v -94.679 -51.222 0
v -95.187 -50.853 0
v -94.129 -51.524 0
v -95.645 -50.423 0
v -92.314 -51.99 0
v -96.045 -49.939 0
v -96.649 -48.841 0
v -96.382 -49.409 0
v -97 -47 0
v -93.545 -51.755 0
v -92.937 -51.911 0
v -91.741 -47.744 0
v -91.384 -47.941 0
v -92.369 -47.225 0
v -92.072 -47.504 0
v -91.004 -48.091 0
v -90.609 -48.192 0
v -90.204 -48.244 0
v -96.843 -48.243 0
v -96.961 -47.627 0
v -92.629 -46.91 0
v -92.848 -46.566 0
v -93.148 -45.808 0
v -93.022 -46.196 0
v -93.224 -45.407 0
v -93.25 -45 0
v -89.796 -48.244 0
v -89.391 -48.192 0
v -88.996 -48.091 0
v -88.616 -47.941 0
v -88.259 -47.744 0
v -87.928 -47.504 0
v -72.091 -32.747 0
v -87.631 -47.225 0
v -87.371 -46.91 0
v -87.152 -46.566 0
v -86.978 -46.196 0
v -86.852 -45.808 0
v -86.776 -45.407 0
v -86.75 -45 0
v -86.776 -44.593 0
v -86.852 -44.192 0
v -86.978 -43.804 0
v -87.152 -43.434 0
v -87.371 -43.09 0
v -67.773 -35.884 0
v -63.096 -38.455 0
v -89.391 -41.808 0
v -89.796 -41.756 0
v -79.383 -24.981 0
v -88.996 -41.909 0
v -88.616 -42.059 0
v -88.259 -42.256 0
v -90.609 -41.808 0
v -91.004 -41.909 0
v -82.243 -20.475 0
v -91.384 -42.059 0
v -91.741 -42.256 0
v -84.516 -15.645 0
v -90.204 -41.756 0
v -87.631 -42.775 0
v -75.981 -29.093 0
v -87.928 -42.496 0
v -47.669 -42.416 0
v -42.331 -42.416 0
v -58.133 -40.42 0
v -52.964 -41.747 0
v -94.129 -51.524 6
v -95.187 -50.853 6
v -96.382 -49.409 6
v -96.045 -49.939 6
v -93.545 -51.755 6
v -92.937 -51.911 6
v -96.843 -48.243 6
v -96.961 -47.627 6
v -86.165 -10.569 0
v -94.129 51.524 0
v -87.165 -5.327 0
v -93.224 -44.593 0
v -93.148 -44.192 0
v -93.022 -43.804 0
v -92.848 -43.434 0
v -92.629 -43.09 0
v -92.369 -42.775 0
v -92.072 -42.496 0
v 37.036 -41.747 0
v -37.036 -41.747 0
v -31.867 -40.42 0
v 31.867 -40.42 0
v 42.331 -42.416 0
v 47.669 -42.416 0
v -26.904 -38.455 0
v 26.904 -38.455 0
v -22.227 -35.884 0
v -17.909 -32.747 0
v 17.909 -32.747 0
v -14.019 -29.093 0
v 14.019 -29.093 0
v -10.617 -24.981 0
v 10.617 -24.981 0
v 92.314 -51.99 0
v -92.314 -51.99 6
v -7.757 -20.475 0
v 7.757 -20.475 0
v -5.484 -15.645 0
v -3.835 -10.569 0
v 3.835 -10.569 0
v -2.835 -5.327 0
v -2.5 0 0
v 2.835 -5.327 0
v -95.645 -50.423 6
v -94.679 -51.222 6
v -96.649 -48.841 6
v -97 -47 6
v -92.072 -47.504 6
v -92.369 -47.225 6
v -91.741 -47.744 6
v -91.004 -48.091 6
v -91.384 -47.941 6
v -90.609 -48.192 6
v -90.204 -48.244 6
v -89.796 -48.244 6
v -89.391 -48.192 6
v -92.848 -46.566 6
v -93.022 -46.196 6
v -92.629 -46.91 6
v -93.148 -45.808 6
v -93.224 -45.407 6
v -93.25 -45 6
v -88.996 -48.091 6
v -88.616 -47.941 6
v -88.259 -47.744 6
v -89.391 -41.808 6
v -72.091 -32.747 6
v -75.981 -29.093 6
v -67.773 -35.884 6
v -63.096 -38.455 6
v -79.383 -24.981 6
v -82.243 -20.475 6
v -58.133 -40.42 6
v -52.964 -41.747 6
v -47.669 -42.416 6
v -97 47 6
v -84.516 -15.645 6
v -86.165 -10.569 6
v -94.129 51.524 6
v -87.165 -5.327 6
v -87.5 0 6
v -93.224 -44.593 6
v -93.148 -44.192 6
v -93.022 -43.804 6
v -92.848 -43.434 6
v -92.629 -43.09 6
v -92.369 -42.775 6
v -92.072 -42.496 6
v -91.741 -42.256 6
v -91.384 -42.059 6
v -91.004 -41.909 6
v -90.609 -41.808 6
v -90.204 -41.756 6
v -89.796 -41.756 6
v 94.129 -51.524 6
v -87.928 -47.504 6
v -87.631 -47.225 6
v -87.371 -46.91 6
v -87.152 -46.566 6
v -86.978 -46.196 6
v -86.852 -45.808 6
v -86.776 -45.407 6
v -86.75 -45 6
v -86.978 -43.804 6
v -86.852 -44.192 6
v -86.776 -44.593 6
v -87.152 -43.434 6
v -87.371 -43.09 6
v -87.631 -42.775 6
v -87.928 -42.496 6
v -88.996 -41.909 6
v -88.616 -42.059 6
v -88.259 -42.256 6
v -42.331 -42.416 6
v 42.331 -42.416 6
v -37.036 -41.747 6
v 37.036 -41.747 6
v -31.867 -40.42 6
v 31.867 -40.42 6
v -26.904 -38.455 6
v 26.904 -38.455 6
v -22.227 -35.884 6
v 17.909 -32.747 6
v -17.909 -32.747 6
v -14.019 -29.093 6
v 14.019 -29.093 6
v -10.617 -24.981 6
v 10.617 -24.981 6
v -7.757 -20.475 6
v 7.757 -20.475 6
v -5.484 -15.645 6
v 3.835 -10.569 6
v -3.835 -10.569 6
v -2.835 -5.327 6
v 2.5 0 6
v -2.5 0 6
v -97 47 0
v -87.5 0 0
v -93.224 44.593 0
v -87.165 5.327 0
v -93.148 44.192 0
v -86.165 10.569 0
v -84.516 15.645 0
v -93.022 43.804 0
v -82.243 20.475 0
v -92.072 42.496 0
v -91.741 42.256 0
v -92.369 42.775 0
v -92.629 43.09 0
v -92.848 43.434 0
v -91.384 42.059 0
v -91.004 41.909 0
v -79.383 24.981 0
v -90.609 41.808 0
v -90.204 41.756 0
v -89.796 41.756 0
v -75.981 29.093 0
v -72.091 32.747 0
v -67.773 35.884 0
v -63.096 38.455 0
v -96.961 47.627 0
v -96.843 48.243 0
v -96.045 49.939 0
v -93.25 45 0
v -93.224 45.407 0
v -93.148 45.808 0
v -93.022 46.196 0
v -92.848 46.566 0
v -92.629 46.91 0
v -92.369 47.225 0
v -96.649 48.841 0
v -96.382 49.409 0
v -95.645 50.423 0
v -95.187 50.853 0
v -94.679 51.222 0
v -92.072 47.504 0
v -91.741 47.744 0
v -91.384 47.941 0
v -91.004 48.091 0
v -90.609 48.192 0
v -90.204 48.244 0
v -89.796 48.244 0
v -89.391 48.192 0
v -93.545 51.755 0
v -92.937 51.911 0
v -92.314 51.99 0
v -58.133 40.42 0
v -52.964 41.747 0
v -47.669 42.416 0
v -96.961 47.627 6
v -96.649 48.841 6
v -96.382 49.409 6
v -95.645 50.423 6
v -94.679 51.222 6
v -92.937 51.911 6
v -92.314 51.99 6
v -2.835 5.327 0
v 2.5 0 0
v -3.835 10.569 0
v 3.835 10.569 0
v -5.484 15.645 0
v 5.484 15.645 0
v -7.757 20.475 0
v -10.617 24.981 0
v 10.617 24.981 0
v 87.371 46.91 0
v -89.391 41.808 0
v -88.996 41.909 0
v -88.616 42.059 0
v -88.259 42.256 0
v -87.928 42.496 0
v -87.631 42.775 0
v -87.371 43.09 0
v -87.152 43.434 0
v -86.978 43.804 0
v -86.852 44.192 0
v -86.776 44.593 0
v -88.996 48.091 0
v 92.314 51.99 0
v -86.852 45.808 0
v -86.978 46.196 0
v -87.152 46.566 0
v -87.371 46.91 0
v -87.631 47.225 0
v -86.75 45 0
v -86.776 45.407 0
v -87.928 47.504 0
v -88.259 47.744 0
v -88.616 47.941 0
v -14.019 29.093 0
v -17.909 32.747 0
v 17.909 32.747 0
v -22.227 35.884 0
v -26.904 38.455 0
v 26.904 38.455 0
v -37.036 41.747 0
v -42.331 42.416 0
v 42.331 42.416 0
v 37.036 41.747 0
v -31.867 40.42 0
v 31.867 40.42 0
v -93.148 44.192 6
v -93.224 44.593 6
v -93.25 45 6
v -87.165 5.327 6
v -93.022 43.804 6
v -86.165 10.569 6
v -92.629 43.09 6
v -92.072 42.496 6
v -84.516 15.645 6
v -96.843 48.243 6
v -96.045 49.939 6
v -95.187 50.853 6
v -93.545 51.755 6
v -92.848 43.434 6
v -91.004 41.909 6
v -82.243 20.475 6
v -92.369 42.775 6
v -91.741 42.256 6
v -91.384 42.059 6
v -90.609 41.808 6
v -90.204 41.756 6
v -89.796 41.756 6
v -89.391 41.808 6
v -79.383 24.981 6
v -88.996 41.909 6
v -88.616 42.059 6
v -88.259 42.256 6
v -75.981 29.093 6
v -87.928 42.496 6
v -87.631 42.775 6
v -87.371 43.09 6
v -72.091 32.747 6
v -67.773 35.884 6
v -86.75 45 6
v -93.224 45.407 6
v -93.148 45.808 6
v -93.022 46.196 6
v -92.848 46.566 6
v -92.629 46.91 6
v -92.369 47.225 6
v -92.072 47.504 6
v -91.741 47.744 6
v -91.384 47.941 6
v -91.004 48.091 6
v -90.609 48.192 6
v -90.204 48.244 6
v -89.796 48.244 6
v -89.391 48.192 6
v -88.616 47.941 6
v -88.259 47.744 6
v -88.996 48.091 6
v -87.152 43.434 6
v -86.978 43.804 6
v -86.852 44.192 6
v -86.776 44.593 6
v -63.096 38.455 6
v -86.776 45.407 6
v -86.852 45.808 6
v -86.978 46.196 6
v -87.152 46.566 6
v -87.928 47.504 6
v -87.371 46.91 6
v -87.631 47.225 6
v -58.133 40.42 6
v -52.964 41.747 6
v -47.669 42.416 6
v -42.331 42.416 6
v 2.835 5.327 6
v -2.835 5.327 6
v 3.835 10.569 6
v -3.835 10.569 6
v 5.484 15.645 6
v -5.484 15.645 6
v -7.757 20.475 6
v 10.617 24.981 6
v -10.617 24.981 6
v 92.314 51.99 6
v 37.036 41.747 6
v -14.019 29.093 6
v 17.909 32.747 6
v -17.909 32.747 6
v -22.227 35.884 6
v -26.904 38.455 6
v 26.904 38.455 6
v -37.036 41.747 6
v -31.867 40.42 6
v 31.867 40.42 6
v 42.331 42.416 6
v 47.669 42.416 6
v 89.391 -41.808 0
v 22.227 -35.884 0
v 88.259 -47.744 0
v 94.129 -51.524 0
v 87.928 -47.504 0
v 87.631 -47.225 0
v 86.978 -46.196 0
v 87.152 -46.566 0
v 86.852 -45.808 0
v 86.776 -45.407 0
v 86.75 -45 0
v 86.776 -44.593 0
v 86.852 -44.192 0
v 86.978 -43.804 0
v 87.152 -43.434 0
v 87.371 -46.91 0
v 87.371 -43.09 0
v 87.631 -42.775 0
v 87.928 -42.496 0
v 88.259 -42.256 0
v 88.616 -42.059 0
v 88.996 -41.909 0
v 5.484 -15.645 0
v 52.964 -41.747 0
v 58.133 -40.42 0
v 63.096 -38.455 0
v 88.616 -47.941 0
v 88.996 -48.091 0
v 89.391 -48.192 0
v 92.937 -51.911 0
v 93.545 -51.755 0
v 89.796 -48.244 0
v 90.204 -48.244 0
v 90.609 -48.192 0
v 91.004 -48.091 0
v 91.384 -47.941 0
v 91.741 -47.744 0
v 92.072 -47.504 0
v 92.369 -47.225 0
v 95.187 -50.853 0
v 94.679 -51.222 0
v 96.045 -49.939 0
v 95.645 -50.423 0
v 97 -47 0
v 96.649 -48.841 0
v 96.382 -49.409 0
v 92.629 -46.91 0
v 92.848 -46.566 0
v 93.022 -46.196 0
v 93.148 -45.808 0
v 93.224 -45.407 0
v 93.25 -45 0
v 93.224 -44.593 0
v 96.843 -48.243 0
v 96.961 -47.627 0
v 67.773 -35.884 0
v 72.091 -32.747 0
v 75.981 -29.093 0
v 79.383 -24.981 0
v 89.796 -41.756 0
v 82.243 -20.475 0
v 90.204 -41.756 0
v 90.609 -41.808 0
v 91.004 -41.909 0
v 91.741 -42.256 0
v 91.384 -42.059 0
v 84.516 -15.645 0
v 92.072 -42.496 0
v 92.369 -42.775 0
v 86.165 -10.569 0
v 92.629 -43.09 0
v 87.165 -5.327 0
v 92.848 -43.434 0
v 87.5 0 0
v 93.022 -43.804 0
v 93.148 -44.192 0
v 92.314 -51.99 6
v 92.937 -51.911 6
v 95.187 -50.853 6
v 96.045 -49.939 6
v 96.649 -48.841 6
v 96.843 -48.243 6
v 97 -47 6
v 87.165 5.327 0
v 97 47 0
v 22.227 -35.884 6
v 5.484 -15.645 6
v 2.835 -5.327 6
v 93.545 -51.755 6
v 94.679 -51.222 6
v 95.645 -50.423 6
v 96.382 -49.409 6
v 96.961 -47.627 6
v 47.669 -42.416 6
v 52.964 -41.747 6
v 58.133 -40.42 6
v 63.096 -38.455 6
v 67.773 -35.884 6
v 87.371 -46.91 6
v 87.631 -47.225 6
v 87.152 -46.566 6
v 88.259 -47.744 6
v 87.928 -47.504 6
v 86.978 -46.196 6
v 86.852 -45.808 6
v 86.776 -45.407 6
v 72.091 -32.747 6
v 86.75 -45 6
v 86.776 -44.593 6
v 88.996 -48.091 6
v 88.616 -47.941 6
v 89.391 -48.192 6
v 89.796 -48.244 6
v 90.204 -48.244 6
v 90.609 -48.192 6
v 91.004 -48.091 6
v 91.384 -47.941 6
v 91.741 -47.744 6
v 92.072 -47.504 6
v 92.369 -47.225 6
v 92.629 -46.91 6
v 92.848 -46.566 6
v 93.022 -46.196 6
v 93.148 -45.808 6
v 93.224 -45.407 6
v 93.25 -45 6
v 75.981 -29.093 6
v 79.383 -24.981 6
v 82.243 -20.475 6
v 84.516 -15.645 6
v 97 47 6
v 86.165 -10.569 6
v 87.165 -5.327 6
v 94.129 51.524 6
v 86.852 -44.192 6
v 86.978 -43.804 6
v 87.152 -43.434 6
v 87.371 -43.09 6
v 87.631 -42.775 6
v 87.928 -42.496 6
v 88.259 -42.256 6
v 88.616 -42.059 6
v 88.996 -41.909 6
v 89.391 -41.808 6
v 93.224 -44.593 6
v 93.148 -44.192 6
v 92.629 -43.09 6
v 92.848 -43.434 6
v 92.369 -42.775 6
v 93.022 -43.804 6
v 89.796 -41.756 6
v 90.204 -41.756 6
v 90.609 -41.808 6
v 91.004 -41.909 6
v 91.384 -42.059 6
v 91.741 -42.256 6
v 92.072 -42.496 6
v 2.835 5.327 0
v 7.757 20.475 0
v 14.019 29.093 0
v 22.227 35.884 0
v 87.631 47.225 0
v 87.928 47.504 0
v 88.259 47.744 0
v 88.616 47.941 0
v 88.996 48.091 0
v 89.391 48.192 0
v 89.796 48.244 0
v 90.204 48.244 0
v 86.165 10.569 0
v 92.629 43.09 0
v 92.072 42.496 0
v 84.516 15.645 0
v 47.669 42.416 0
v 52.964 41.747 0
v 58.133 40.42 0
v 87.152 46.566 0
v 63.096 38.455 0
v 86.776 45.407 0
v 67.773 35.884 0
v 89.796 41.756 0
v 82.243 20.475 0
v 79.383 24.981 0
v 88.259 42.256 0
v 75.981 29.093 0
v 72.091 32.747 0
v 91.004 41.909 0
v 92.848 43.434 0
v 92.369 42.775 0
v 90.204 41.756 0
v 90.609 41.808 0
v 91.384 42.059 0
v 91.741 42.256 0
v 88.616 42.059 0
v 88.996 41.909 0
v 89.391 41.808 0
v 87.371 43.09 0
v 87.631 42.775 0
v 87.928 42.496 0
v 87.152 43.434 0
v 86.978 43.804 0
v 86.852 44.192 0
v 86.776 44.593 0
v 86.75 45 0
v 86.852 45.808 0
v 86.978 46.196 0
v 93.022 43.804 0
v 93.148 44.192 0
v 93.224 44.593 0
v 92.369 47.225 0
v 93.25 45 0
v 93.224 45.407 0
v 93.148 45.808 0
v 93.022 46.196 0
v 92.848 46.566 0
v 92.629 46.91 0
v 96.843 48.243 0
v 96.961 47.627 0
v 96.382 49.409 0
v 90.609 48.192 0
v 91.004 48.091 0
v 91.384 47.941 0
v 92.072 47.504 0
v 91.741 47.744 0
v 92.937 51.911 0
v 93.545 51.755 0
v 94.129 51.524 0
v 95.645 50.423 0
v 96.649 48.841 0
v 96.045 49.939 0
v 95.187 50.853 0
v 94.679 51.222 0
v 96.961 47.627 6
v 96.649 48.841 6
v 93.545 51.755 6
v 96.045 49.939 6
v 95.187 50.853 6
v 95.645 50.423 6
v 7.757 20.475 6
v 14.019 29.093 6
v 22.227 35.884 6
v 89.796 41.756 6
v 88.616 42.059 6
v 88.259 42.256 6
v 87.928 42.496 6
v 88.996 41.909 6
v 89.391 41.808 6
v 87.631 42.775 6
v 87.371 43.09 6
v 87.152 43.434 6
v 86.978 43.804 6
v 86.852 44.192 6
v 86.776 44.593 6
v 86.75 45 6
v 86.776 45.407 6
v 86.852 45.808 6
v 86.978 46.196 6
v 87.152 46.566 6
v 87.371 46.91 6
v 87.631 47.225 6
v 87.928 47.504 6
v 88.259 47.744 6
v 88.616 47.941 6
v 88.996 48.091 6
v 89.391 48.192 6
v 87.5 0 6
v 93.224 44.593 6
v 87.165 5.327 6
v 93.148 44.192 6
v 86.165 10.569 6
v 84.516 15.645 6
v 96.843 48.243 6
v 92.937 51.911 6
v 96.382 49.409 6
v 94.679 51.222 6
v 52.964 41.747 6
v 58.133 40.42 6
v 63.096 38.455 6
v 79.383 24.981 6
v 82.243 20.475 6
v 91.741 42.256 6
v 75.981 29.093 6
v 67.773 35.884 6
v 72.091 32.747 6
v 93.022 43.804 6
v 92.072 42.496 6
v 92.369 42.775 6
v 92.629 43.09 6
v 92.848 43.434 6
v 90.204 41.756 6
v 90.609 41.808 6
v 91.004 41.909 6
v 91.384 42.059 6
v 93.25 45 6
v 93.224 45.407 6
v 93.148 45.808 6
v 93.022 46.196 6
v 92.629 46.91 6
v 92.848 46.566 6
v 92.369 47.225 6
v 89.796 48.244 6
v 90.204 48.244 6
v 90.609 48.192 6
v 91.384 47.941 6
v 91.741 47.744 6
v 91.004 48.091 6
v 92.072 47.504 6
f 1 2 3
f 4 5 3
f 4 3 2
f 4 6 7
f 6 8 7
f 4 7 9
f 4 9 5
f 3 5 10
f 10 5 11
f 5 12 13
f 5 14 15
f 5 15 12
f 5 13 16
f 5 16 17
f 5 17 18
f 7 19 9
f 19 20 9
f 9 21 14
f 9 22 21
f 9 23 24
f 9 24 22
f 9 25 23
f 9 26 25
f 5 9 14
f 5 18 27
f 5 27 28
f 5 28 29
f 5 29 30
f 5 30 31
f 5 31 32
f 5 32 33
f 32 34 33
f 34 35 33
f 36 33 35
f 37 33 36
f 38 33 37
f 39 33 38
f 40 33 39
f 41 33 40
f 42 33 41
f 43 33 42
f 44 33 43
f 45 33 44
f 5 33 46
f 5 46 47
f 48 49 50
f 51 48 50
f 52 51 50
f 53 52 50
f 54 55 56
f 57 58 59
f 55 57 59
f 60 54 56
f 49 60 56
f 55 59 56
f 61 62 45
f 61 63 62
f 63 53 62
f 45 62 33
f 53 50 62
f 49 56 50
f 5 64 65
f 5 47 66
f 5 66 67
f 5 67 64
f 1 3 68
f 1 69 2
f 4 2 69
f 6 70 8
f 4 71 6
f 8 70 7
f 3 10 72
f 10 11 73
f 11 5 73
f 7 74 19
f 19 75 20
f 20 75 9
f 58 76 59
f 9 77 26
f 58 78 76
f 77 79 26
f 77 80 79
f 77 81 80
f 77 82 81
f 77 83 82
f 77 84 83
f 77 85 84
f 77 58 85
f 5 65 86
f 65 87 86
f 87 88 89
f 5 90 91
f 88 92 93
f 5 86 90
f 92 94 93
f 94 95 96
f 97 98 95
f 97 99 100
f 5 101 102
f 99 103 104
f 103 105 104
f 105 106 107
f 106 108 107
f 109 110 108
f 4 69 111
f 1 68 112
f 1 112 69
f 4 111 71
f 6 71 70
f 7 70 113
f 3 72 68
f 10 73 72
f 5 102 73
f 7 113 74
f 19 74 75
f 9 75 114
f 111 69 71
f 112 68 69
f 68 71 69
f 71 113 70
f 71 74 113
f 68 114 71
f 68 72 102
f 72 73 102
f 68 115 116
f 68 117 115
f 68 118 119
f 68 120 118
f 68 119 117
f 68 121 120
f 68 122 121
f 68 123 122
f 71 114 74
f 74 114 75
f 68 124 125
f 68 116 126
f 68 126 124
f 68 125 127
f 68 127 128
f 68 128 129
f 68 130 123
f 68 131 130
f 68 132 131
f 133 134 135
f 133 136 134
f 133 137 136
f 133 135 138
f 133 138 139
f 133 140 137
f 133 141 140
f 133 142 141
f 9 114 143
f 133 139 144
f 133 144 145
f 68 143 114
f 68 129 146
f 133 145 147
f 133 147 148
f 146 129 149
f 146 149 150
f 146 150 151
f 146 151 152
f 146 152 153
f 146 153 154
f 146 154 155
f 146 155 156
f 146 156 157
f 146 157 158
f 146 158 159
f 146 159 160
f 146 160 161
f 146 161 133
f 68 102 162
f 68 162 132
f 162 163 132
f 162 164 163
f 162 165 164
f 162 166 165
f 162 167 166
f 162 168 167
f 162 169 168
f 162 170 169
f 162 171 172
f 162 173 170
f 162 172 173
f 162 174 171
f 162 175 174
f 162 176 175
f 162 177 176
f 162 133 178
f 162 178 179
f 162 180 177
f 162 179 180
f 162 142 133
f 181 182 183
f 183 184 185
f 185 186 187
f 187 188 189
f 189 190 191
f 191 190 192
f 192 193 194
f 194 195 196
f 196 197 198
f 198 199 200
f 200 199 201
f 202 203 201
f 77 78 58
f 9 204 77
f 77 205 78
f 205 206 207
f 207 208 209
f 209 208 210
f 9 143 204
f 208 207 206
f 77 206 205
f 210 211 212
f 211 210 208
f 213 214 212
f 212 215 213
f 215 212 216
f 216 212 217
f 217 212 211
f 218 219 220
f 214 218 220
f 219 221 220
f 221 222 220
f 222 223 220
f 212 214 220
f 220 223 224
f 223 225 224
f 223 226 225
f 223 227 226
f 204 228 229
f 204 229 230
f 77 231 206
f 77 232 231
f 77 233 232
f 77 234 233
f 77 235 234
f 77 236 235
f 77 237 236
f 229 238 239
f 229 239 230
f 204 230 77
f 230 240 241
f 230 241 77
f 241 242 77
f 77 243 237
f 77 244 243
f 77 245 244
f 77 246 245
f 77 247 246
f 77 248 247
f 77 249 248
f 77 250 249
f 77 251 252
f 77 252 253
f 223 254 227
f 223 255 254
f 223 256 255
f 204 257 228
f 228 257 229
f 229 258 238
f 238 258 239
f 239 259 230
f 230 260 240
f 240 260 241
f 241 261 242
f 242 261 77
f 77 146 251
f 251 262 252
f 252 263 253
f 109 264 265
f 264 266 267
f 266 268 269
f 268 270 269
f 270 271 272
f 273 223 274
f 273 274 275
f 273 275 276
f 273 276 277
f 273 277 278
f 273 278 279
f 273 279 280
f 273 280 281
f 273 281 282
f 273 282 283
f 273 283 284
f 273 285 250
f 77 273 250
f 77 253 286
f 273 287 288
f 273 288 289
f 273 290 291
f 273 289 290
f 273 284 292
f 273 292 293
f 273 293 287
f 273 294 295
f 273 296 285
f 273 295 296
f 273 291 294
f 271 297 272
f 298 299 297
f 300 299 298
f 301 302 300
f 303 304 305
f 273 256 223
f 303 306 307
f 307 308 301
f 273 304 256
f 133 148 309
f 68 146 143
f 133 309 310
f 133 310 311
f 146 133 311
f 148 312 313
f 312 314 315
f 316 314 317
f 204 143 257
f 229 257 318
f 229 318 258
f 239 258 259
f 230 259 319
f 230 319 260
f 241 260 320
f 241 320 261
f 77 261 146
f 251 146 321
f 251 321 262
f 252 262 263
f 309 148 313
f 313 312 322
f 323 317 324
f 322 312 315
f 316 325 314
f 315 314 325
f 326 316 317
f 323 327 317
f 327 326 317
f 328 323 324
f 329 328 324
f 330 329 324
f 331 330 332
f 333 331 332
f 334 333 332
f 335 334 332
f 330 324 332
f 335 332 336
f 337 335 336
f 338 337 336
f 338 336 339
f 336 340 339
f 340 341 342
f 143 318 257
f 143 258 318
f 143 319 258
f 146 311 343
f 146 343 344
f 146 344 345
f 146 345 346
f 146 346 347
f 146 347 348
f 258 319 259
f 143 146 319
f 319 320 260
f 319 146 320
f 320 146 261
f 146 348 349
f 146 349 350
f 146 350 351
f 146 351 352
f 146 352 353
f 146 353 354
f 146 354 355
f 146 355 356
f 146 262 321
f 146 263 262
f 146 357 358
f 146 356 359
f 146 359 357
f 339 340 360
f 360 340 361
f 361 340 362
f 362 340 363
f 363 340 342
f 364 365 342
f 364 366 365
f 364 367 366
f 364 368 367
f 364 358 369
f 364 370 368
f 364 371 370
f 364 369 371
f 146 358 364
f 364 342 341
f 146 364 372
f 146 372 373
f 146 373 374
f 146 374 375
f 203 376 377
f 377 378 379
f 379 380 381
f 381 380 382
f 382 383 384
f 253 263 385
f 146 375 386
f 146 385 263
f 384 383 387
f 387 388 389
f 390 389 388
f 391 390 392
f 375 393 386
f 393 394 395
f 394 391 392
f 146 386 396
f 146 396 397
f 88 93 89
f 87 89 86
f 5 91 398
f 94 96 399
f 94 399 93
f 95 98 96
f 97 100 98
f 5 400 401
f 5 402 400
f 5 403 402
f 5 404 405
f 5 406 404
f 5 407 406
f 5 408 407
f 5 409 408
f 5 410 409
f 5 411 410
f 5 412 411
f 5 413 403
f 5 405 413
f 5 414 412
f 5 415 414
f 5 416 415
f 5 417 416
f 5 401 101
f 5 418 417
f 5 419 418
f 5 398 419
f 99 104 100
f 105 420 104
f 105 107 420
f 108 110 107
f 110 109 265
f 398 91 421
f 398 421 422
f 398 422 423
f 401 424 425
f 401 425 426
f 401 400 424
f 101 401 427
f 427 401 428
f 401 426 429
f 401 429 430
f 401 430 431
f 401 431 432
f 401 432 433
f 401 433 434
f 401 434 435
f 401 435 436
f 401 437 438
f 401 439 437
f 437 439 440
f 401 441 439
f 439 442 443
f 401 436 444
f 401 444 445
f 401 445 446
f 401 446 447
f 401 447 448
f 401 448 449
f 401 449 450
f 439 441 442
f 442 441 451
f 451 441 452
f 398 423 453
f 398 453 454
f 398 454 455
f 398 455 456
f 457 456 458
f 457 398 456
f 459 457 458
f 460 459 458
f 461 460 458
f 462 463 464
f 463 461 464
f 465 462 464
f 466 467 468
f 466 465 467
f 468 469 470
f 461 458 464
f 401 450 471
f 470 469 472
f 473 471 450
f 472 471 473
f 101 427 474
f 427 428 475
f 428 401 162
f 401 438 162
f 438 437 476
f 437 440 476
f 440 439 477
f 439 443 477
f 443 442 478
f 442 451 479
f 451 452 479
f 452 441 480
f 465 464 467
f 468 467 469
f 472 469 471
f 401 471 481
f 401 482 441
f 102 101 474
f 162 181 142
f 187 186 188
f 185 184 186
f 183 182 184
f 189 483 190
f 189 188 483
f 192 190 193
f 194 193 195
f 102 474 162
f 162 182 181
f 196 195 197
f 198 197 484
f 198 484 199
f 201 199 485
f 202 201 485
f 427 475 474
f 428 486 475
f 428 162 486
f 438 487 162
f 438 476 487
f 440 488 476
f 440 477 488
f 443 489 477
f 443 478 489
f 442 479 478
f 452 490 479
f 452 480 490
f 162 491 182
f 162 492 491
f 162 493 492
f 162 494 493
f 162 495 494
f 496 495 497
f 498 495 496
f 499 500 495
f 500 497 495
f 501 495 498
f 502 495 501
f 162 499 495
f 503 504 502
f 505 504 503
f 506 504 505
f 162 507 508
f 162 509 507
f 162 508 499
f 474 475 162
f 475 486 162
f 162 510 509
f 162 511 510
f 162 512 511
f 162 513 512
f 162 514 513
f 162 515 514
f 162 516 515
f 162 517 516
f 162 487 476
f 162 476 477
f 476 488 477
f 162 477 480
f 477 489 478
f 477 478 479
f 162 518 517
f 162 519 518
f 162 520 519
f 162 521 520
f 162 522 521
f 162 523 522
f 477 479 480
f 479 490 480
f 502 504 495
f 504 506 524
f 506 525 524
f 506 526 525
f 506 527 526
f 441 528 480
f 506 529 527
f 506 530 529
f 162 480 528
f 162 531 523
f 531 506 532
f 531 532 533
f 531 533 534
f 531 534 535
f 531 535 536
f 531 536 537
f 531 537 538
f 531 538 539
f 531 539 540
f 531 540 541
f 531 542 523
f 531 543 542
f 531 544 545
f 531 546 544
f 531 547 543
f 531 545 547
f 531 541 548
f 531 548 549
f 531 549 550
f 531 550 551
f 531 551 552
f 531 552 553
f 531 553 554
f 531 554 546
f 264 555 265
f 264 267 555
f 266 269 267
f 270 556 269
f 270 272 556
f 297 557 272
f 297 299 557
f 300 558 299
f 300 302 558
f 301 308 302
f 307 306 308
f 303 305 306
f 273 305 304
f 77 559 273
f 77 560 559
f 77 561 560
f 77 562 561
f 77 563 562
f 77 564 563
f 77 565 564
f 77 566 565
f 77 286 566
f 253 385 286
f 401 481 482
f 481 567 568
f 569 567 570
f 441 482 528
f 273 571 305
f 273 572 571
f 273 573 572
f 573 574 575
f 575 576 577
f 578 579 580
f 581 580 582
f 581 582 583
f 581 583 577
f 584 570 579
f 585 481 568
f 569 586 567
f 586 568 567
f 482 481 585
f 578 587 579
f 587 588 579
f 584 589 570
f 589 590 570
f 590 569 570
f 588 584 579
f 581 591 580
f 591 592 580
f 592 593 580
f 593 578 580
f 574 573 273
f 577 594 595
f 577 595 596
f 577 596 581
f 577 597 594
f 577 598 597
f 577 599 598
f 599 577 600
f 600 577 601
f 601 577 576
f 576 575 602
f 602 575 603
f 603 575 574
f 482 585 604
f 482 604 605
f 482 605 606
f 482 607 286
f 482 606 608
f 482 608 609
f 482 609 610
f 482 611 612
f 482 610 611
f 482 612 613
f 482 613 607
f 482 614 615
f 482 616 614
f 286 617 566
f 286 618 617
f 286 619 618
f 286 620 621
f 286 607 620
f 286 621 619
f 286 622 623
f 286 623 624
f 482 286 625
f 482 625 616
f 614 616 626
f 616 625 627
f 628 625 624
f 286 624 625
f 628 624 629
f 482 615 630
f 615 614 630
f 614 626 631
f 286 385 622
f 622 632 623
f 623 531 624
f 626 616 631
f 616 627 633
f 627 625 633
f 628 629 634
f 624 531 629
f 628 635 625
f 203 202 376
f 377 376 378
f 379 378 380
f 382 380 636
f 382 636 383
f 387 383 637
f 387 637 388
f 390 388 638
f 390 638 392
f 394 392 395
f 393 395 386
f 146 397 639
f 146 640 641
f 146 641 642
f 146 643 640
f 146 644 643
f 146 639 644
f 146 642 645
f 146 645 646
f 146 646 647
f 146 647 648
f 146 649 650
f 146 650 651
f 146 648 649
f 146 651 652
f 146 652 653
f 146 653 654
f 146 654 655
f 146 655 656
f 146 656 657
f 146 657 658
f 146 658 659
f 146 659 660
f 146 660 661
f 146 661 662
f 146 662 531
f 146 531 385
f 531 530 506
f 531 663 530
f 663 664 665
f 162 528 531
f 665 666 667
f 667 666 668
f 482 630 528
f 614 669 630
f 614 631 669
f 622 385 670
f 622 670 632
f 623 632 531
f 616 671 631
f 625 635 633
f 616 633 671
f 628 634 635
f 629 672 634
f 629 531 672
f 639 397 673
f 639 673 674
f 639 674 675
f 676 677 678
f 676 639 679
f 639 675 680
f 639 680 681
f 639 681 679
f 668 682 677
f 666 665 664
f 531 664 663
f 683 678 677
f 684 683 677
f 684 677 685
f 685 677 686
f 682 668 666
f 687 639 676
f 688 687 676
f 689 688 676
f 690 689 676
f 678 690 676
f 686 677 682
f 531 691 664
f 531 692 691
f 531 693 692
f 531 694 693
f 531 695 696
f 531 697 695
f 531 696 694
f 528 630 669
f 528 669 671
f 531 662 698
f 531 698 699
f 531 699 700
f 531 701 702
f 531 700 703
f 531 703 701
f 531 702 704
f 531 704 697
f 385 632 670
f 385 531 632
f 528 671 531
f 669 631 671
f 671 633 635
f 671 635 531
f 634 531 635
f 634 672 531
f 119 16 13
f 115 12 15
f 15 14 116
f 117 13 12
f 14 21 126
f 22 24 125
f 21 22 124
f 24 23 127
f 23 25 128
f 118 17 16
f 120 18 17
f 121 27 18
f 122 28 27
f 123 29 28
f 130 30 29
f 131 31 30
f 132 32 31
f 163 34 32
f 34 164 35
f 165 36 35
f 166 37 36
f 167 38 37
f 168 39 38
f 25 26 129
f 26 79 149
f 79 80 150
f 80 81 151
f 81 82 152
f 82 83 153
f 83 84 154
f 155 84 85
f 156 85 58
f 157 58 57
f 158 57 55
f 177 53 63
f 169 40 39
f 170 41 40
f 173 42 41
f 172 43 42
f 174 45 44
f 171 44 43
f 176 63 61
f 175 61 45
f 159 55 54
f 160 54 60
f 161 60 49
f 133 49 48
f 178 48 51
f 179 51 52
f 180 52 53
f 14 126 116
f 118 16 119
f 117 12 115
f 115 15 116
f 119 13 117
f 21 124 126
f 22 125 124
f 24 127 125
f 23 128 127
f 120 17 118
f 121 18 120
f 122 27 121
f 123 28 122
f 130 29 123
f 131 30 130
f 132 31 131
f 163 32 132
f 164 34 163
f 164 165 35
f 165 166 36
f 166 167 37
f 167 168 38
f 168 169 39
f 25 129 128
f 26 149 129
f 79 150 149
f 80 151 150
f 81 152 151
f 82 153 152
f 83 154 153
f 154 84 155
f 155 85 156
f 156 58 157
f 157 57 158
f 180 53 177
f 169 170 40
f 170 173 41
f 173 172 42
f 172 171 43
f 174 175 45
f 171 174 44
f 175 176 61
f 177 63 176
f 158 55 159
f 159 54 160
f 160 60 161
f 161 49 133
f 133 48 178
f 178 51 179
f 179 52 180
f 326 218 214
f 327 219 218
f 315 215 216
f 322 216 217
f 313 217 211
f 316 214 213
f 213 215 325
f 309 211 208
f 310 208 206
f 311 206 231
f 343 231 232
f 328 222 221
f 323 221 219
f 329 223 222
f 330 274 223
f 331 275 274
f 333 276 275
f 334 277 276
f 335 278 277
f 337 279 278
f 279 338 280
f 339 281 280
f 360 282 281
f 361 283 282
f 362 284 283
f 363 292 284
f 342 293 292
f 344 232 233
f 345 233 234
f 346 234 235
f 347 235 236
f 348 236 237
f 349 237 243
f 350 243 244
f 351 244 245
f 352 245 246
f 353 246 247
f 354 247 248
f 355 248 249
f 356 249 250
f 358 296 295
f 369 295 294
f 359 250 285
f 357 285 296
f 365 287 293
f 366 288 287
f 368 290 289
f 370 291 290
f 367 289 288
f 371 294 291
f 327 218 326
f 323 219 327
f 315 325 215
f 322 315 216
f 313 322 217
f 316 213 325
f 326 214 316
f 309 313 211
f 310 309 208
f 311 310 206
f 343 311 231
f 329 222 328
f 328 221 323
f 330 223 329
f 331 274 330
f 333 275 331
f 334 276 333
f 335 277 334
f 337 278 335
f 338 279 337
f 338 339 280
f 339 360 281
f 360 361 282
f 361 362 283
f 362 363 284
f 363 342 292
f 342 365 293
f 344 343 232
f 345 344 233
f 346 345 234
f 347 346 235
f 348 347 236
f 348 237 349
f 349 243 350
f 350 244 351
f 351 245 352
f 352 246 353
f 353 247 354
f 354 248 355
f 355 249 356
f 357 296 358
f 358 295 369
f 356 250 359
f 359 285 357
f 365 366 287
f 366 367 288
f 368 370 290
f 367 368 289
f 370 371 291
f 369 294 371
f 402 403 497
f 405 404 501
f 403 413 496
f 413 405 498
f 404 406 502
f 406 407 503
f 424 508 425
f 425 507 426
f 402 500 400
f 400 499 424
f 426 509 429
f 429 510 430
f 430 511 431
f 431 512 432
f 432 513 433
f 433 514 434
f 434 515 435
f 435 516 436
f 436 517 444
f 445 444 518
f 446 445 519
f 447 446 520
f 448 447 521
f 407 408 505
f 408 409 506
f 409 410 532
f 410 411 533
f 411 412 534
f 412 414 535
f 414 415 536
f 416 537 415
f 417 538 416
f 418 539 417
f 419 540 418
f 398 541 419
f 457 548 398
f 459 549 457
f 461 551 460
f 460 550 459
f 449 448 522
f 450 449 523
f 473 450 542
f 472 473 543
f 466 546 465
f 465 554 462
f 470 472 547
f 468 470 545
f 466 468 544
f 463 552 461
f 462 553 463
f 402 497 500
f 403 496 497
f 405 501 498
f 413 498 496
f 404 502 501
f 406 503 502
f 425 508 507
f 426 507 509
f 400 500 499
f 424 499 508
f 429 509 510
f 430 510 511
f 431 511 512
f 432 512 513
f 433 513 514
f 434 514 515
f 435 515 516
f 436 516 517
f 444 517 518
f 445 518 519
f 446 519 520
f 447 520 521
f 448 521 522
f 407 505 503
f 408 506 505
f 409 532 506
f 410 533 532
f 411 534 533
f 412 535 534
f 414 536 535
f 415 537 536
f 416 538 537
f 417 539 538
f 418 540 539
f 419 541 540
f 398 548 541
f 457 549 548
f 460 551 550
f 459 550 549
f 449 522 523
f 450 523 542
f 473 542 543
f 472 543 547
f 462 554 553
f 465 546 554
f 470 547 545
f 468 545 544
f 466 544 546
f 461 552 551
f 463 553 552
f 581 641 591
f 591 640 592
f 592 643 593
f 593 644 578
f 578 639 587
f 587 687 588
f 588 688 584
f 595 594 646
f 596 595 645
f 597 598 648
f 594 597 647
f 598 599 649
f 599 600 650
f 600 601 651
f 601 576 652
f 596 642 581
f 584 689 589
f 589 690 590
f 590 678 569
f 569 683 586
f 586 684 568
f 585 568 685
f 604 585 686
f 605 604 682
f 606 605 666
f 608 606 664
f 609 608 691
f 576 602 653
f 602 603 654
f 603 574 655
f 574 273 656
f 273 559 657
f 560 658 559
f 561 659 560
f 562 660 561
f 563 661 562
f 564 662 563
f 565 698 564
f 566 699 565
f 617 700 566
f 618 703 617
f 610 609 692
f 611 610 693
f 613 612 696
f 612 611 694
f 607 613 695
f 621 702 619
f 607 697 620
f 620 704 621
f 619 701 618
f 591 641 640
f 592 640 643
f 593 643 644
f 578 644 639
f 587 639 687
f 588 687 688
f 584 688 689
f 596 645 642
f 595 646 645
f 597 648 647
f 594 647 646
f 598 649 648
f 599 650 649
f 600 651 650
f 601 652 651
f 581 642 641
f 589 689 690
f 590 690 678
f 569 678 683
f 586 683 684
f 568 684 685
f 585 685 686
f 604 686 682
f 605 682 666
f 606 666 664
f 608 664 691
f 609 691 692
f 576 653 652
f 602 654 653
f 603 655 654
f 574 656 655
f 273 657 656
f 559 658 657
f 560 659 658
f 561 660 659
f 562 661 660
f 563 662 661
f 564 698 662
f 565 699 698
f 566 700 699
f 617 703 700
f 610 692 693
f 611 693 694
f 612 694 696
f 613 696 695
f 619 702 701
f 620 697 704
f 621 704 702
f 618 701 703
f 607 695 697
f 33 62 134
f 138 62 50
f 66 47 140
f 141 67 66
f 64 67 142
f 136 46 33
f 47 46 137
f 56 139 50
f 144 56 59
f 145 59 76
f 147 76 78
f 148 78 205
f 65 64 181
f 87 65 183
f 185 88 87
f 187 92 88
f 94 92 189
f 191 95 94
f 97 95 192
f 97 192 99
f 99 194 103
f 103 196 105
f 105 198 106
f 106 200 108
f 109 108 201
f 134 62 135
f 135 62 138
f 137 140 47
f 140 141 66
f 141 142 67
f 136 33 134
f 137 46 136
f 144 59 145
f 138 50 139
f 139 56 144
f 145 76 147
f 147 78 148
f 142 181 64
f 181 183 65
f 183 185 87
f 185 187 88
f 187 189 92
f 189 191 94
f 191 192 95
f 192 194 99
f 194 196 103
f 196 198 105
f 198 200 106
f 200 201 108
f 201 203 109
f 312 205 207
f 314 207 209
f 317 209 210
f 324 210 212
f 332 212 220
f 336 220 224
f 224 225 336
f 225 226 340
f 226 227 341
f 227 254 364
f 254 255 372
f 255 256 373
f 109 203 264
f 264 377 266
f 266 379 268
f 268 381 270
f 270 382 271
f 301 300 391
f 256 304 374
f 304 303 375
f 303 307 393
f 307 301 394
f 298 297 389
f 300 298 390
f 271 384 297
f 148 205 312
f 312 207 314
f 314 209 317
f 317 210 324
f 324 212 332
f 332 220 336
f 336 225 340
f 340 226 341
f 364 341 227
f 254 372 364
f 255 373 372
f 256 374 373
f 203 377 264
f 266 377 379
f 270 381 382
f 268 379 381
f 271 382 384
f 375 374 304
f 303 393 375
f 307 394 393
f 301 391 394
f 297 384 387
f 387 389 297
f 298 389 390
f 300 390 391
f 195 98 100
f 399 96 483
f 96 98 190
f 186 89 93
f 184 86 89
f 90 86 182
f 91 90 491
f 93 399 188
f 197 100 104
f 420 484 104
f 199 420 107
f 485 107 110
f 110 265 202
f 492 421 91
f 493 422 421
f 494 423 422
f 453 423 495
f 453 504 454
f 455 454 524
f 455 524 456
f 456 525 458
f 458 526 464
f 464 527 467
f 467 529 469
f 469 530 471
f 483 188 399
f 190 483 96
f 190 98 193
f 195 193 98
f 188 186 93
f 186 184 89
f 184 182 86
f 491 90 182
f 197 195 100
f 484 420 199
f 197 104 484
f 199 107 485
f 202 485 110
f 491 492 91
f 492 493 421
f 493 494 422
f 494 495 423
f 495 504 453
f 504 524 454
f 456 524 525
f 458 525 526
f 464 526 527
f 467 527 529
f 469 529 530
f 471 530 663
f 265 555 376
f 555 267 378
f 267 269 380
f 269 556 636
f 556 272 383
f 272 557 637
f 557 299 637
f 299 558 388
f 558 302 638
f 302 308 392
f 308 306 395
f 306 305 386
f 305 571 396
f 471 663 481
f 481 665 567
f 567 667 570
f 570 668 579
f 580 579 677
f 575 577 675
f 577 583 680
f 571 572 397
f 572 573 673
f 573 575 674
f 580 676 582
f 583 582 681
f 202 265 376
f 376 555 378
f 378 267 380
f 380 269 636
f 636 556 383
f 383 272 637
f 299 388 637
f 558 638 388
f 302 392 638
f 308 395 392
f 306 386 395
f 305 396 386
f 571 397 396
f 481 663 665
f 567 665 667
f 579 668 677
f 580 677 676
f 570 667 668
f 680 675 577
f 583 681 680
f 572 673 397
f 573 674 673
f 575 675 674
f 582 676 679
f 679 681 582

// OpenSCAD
$fn = 50;

difference() {
	union() {
		hull() {
			translate(v = [-92.0, 47.0, 0]) {
				cylinder(h = 6, r = 5);
			}
			translate(v = [92.0, 47.0, 0]) {
				cylinder(h = 6, r = 5);
			}
			translate(v = [-92.0, -47.0, 0]) {
				cylinder(h = 6, r = 5);
			}
			translate(v = [92.0, -47.0, 0]) {
				cylinder(h = 6, r = 5);
			}
		}
	}
	union() {
		translate(v = [-90.0, -45.0, -100.0]) {
			cylinder(h = 200, r = 3.25);
		}
		translate(v = [-90.0, 45.0, -100.0]) {
			cylinder(h = 200, r = 3.25);
		}
		translate(v = [90.0, -45.0, -100.0]) {
			cylinder(h = 200, r = 3.25);
		}
		translate(v = [90.0, 45.0, -100.0]) {
			cylinder(h = 200, r = 3.25);
		}
		translate(v = [-90.0, -45.0, -100.0]) {
			cylinder(h = 200, r = 1.8);
		}
		translate(v = [-90.0, 45.0, -100.0]) {
			cylinder(h = 200, r = 1.8);
		}
		translate(v = [90.0, -45.0, -100.0]) {
			cylinder(h = 200, r = 1.8);
		}
		translate(v = [90.0, 45.0, -100.0]) {
			cylinder(h = 200, r = 1.8);
		}
		translate(v = [-45.0, 0, 0.0]) {
			cylinder(h = 6, r = 42.5);
		}
		translate(v = [45.0, 0, 0.0]) {
			cylinder(h = 6, r = 42.5);
		}
	}
}
